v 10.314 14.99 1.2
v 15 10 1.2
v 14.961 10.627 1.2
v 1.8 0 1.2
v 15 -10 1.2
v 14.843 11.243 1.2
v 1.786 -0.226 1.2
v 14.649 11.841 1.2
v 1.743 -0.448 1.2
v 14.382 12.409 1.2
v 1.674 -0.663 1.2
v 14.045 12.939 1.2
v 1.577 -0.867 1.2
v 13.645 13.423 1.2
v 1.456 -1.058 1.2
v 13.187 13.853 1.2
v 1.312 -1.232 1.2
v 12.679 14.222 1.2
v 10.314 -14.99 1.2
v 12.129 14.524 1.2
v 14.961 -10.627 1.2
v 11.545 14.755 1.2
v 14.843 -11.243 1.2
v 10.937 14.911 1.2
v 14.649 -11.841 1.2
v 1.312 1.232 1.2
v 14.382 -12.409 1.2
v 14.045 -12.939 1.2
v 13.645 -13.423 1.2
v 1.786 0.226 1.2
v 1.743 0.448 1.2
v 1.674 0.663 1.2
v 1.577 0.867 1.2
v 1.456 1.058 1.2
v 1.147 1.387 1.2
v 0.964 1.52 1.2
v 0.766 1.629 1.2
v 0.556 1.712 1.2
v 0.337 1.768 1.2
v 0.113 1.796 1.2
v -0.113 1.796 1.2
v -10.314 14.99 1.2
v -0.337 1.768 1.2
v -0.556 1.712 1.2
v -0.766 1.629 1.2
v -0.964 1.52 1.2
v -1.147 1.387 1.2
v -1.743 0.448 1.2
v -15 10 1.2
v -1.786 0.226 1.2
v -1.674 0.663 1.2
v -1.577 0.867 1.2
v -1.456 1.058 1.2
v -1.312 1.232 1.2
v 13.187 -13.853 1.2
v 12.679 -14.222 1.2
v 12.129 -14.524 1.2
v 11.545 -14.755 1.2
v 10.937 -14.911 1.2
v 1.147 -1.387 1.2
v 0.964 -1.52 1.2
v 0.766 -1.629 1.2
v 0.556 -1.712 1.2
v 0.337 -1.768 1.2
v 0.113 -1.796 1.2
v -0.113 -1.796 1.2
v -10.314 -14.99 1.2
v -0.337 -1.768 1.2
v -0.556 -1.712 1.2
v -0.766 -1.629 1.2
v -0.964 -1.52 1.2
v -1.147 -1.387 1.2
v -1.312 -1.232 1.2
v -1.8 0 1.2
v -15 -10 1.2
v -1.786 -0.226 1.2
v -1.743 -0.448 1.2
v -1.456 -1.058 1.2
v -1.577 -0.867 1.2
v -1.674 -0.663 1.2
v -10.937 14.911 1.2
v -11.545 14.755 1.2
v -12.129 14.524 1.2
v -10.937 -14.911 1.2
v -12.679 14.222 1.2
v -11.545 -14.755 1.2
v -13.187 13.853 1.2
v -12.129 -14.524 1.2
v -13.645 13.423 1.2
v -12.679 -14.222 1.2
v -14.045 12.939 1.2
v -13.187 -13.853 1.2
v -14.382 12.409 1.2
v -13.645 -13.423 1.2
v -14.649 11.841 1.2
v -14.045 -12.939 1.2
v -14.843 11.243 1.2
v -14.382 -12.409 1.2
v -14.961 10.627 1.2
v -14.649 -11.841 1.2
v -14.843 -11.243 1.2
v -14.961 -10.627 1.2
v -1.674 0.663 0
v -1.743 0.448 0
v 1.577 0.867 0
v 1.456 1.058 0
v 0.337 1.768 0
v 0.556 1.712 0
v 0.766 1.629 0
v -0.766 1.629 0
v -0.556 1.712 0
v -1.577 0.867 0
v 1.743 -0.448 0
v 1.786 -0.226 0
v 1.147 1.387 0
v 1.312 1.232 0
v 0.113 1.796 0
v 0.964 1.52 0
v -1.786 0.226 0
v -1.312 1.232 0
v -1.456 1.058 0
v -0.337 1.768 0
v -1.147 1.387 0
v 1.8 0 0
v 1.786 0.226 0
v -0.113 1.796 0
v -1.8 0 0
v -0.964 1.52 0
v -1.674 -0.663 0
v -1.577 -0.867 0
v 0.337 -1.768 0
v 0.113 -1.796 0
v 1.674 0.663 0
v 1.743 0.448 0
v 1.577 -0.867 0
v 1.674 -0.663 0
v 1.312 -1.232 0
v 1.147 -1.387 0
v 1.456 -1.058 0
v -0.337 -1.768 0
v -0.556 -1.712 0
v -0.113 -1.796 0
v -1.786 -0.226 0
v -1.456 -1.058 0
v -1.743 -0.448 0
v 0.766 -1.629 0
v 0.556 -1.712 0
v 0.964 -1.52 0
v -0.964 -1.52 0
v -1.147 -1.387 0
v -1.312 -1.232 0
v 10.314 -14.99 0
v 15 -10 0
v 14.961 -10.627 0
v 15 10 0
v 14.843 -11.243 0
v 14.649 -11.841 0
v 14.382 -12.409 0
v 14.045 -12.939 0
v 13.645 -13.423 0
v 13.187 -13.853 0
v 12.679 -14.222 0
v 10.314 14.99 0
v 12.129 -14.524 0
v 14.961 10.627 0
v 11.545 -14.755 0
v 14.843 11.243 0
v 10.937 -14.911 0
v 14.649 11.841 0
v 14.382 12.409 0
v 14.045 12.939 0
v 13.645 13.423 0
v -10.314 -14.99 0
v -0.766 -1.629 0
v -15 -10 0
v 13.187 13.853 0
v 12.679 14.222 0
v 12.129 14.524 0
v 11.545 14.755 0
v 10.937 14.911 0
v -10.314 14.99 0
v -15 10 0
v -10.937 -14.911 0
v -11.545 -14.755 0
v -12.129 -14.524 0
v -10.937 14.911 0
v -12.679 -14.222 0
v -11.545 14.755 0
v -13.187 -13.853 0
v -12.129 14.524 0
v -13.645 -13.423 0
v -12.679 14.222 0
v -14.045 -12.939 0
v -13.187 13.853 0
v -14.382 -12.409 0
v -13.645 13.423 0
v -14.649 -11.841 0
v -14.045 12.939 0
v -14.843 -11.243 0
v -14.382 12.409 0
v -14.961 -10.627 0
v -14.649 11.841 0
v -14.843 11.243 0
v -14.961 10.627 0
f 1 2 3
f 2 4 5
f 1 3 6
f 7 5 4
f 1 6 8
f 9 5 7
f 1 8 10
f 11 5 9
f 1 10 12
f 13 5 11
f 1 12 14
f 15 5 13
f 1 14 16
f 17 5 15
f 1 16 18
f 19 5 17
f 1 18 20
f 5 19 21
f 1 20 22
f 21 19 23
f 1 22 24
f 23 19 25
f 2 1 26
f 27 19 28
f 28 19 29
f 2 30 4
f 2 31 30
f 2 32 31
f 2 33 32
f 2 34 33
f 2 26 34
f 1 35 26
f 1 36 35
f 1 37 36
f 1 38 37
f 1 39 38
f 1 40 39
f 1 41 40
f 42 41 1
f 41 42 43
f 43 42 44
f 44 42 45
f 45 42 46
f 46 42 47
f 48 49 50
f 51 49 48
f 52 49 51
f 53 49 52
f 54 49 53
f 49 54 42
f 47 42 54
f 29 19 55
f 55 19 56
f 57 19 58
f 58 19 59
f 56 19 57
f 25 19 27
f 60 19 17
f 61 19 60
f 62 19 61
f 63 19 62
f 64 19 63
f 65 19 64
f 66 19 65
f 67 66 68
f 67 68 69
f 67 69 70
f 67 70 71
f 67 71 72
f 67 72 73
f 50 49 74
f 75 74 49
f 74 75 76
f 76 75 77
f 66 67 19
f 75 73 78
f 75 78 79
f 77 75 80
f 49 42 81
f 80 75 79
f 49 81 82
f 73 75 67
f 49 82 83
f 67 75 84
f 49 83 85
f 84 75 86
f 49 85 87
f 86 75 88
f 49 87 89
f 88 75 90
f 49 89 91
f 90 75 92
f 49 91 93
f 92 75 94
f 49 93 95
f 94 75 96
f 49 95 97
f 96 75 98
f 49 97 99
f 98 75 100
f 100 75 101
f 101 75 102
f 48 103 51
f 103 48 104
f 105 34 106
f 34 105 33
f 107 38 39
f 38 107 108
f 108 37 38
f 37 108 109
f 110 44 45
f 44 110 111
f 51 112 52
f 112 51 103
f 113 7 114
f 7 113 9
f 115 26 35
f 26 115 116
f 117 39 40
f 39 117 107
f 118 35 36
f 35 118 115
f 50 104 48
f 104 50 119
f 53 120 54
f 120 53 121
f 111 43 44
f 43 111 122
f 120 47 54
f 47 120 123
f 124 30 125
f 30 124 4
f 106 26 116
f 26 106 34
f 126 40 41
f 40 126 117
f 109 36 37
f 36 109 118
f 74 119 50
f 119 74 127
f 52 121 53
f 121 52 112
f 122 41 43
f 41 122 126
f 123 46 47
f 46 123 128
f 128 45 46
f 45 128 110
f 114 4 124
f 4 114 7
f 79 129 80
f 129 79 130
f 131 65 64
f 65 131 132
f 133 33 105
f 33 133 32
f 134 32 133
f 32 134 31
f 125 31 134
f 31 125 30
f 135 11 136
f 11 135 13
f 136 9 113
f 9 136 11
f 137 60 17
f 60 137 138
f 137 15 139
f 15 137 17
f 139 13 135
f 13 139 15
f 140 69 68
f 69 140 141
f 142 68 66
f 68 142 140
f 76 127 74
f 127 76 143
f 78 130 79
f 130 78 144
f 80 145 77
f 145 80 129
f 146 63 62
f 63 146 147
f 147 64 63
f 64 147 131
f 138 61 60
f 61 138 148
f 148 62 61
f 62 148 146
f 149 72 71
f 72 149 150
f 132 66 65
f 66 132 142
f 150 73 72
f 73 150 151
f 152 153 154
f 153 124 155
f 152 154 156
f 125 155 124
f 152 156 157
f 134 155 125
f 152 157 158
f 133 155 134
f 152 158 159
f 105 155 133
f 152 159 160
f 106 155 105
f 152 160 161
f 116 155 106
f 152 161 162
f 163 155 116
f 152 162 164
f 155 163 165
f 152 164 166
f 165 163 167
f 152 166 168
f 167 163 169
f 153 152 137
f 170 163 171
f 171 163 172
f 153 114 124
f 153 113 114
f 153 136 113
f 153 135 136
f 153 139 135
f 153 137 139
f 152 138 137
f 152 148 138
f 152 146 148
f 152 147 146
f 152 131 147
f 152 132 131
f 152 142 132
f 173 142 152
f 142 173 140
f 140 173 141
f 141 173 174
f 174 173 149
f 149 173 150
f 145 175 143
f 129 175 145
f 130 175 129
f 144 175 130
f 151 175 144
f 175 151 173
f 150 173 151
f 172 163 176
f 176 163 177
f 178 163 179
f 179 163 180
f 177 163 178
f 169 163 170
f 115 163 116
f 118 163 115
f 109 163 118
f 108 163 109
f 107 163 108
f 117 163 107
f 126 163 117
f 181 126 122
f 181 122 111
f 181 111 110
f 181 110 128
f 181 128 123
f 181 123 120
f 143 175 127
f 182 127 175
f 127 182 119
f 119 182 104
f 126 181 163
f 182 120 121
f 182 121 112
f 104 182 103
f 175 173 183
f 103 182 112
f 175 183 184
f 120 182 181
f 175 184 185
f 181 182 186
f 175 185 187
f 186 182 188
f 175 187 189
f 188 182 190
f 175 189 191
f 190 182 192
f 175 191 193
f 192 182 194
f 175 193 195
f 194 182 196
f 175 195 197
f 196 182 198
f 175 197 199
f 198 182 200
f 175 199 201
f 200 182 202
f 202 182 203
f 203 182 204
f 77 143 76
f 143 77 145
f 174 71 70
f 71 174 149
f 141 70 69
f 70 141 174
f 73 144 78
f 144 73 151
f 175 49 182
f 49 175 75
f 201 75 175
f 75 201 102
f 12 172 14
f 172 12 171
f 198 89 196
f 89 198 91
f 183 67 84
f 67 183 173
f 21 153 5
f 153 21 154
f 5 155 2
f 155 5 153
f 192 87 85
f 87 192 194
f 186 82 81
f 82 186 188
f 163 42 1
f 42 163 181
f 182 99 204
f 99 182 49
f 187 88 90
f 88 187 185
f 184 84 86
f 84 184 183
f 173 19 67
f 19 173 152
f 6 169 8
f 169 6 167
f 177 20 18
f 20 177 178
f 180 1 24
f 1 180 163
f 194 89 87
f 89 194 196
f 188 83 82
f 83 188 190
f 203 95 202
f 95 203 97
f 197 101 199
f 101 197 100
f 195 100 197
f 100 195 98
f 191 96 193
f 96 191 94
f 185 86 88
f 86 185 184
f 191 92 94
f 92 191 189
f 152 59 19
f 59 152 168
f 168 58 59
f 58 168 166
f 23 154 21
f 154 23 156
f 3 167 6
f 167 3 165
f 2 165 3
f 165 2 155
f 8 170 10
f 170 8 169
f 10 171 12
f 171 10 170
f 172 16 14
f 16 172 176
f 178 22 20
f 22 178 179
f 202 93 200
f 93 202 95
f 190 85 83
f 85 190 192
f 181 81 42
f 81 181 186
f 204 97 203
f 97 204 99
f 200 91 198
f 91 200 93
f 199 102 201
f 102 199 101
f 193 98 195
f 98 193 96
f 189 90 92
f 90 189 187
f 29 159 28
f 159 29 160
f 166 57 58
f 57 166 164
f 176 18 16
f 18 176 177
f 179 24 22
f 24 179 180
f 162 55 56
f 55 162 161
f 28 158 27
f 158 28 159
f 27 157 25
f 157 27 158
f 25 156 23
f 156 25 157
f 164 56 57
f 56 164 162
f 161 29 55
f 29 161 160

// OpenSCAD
$fn = 50;


difference() {
	union() {
		hull() {
			translate(v = [-10.0000000000, 10.0000000000, 0]) {
				cylinder(h = 60, r = 5);
			}
			translate(v = [10.0000000000, 10.0000000000, 0]) {
				cylinder(h = 60, r = 5);
			}
			translate(v = [-10.0000000000, -10.0000000000, 0]) {
				cylinder(h = 60, r = 5);
			}
			translate(v = [10.0000000000, -10.0000000000, 0]) {
				cylinder(h = 60, r = 5);
			}
		}
	}
	union() {
		translate(v = [0, 0, 1.2000000000]) {
			hull() {
				translate(v = [-10.0000000000, 10.0000000000, 0]) {
					cylinder(h = 58.8000000000, r = 3.8000000000);
				}
				translate(v = [10.0000000000, 10.0000000000, 0]) {
					cylinder(h = 58.8000000000, r = 3.8000000000);
				}
				translate(v = [-10.0000000000, -10.0000000000, 0]) {
					cylinder(h = 58.8000000000, r = 3.8000000000);
				}
				translate(v = [10.0000000000, -10.0000000000, 0]) {
					cylinder(h = 58.8000000000, r = 3.8000000000);
				}
			}
		}
		#cylinder(h = 1.2000000000, r = 1.8000000000);
		translate(v = [-250.0000000000, -250.0000000000, 1.2000000000]) {
			cube(size = [500, 500, 500]);
		}
		translate(v = [-250.0000000000, -250.0000000000, 1.2000000000]) {
			cube(size = [500, 500, 500]);
		}
		translate(v = [-250.0000000000, -250.0000000000, 1.2000000000]) {
			cube(size = [500, 500, 500]);
		}
	}
}
